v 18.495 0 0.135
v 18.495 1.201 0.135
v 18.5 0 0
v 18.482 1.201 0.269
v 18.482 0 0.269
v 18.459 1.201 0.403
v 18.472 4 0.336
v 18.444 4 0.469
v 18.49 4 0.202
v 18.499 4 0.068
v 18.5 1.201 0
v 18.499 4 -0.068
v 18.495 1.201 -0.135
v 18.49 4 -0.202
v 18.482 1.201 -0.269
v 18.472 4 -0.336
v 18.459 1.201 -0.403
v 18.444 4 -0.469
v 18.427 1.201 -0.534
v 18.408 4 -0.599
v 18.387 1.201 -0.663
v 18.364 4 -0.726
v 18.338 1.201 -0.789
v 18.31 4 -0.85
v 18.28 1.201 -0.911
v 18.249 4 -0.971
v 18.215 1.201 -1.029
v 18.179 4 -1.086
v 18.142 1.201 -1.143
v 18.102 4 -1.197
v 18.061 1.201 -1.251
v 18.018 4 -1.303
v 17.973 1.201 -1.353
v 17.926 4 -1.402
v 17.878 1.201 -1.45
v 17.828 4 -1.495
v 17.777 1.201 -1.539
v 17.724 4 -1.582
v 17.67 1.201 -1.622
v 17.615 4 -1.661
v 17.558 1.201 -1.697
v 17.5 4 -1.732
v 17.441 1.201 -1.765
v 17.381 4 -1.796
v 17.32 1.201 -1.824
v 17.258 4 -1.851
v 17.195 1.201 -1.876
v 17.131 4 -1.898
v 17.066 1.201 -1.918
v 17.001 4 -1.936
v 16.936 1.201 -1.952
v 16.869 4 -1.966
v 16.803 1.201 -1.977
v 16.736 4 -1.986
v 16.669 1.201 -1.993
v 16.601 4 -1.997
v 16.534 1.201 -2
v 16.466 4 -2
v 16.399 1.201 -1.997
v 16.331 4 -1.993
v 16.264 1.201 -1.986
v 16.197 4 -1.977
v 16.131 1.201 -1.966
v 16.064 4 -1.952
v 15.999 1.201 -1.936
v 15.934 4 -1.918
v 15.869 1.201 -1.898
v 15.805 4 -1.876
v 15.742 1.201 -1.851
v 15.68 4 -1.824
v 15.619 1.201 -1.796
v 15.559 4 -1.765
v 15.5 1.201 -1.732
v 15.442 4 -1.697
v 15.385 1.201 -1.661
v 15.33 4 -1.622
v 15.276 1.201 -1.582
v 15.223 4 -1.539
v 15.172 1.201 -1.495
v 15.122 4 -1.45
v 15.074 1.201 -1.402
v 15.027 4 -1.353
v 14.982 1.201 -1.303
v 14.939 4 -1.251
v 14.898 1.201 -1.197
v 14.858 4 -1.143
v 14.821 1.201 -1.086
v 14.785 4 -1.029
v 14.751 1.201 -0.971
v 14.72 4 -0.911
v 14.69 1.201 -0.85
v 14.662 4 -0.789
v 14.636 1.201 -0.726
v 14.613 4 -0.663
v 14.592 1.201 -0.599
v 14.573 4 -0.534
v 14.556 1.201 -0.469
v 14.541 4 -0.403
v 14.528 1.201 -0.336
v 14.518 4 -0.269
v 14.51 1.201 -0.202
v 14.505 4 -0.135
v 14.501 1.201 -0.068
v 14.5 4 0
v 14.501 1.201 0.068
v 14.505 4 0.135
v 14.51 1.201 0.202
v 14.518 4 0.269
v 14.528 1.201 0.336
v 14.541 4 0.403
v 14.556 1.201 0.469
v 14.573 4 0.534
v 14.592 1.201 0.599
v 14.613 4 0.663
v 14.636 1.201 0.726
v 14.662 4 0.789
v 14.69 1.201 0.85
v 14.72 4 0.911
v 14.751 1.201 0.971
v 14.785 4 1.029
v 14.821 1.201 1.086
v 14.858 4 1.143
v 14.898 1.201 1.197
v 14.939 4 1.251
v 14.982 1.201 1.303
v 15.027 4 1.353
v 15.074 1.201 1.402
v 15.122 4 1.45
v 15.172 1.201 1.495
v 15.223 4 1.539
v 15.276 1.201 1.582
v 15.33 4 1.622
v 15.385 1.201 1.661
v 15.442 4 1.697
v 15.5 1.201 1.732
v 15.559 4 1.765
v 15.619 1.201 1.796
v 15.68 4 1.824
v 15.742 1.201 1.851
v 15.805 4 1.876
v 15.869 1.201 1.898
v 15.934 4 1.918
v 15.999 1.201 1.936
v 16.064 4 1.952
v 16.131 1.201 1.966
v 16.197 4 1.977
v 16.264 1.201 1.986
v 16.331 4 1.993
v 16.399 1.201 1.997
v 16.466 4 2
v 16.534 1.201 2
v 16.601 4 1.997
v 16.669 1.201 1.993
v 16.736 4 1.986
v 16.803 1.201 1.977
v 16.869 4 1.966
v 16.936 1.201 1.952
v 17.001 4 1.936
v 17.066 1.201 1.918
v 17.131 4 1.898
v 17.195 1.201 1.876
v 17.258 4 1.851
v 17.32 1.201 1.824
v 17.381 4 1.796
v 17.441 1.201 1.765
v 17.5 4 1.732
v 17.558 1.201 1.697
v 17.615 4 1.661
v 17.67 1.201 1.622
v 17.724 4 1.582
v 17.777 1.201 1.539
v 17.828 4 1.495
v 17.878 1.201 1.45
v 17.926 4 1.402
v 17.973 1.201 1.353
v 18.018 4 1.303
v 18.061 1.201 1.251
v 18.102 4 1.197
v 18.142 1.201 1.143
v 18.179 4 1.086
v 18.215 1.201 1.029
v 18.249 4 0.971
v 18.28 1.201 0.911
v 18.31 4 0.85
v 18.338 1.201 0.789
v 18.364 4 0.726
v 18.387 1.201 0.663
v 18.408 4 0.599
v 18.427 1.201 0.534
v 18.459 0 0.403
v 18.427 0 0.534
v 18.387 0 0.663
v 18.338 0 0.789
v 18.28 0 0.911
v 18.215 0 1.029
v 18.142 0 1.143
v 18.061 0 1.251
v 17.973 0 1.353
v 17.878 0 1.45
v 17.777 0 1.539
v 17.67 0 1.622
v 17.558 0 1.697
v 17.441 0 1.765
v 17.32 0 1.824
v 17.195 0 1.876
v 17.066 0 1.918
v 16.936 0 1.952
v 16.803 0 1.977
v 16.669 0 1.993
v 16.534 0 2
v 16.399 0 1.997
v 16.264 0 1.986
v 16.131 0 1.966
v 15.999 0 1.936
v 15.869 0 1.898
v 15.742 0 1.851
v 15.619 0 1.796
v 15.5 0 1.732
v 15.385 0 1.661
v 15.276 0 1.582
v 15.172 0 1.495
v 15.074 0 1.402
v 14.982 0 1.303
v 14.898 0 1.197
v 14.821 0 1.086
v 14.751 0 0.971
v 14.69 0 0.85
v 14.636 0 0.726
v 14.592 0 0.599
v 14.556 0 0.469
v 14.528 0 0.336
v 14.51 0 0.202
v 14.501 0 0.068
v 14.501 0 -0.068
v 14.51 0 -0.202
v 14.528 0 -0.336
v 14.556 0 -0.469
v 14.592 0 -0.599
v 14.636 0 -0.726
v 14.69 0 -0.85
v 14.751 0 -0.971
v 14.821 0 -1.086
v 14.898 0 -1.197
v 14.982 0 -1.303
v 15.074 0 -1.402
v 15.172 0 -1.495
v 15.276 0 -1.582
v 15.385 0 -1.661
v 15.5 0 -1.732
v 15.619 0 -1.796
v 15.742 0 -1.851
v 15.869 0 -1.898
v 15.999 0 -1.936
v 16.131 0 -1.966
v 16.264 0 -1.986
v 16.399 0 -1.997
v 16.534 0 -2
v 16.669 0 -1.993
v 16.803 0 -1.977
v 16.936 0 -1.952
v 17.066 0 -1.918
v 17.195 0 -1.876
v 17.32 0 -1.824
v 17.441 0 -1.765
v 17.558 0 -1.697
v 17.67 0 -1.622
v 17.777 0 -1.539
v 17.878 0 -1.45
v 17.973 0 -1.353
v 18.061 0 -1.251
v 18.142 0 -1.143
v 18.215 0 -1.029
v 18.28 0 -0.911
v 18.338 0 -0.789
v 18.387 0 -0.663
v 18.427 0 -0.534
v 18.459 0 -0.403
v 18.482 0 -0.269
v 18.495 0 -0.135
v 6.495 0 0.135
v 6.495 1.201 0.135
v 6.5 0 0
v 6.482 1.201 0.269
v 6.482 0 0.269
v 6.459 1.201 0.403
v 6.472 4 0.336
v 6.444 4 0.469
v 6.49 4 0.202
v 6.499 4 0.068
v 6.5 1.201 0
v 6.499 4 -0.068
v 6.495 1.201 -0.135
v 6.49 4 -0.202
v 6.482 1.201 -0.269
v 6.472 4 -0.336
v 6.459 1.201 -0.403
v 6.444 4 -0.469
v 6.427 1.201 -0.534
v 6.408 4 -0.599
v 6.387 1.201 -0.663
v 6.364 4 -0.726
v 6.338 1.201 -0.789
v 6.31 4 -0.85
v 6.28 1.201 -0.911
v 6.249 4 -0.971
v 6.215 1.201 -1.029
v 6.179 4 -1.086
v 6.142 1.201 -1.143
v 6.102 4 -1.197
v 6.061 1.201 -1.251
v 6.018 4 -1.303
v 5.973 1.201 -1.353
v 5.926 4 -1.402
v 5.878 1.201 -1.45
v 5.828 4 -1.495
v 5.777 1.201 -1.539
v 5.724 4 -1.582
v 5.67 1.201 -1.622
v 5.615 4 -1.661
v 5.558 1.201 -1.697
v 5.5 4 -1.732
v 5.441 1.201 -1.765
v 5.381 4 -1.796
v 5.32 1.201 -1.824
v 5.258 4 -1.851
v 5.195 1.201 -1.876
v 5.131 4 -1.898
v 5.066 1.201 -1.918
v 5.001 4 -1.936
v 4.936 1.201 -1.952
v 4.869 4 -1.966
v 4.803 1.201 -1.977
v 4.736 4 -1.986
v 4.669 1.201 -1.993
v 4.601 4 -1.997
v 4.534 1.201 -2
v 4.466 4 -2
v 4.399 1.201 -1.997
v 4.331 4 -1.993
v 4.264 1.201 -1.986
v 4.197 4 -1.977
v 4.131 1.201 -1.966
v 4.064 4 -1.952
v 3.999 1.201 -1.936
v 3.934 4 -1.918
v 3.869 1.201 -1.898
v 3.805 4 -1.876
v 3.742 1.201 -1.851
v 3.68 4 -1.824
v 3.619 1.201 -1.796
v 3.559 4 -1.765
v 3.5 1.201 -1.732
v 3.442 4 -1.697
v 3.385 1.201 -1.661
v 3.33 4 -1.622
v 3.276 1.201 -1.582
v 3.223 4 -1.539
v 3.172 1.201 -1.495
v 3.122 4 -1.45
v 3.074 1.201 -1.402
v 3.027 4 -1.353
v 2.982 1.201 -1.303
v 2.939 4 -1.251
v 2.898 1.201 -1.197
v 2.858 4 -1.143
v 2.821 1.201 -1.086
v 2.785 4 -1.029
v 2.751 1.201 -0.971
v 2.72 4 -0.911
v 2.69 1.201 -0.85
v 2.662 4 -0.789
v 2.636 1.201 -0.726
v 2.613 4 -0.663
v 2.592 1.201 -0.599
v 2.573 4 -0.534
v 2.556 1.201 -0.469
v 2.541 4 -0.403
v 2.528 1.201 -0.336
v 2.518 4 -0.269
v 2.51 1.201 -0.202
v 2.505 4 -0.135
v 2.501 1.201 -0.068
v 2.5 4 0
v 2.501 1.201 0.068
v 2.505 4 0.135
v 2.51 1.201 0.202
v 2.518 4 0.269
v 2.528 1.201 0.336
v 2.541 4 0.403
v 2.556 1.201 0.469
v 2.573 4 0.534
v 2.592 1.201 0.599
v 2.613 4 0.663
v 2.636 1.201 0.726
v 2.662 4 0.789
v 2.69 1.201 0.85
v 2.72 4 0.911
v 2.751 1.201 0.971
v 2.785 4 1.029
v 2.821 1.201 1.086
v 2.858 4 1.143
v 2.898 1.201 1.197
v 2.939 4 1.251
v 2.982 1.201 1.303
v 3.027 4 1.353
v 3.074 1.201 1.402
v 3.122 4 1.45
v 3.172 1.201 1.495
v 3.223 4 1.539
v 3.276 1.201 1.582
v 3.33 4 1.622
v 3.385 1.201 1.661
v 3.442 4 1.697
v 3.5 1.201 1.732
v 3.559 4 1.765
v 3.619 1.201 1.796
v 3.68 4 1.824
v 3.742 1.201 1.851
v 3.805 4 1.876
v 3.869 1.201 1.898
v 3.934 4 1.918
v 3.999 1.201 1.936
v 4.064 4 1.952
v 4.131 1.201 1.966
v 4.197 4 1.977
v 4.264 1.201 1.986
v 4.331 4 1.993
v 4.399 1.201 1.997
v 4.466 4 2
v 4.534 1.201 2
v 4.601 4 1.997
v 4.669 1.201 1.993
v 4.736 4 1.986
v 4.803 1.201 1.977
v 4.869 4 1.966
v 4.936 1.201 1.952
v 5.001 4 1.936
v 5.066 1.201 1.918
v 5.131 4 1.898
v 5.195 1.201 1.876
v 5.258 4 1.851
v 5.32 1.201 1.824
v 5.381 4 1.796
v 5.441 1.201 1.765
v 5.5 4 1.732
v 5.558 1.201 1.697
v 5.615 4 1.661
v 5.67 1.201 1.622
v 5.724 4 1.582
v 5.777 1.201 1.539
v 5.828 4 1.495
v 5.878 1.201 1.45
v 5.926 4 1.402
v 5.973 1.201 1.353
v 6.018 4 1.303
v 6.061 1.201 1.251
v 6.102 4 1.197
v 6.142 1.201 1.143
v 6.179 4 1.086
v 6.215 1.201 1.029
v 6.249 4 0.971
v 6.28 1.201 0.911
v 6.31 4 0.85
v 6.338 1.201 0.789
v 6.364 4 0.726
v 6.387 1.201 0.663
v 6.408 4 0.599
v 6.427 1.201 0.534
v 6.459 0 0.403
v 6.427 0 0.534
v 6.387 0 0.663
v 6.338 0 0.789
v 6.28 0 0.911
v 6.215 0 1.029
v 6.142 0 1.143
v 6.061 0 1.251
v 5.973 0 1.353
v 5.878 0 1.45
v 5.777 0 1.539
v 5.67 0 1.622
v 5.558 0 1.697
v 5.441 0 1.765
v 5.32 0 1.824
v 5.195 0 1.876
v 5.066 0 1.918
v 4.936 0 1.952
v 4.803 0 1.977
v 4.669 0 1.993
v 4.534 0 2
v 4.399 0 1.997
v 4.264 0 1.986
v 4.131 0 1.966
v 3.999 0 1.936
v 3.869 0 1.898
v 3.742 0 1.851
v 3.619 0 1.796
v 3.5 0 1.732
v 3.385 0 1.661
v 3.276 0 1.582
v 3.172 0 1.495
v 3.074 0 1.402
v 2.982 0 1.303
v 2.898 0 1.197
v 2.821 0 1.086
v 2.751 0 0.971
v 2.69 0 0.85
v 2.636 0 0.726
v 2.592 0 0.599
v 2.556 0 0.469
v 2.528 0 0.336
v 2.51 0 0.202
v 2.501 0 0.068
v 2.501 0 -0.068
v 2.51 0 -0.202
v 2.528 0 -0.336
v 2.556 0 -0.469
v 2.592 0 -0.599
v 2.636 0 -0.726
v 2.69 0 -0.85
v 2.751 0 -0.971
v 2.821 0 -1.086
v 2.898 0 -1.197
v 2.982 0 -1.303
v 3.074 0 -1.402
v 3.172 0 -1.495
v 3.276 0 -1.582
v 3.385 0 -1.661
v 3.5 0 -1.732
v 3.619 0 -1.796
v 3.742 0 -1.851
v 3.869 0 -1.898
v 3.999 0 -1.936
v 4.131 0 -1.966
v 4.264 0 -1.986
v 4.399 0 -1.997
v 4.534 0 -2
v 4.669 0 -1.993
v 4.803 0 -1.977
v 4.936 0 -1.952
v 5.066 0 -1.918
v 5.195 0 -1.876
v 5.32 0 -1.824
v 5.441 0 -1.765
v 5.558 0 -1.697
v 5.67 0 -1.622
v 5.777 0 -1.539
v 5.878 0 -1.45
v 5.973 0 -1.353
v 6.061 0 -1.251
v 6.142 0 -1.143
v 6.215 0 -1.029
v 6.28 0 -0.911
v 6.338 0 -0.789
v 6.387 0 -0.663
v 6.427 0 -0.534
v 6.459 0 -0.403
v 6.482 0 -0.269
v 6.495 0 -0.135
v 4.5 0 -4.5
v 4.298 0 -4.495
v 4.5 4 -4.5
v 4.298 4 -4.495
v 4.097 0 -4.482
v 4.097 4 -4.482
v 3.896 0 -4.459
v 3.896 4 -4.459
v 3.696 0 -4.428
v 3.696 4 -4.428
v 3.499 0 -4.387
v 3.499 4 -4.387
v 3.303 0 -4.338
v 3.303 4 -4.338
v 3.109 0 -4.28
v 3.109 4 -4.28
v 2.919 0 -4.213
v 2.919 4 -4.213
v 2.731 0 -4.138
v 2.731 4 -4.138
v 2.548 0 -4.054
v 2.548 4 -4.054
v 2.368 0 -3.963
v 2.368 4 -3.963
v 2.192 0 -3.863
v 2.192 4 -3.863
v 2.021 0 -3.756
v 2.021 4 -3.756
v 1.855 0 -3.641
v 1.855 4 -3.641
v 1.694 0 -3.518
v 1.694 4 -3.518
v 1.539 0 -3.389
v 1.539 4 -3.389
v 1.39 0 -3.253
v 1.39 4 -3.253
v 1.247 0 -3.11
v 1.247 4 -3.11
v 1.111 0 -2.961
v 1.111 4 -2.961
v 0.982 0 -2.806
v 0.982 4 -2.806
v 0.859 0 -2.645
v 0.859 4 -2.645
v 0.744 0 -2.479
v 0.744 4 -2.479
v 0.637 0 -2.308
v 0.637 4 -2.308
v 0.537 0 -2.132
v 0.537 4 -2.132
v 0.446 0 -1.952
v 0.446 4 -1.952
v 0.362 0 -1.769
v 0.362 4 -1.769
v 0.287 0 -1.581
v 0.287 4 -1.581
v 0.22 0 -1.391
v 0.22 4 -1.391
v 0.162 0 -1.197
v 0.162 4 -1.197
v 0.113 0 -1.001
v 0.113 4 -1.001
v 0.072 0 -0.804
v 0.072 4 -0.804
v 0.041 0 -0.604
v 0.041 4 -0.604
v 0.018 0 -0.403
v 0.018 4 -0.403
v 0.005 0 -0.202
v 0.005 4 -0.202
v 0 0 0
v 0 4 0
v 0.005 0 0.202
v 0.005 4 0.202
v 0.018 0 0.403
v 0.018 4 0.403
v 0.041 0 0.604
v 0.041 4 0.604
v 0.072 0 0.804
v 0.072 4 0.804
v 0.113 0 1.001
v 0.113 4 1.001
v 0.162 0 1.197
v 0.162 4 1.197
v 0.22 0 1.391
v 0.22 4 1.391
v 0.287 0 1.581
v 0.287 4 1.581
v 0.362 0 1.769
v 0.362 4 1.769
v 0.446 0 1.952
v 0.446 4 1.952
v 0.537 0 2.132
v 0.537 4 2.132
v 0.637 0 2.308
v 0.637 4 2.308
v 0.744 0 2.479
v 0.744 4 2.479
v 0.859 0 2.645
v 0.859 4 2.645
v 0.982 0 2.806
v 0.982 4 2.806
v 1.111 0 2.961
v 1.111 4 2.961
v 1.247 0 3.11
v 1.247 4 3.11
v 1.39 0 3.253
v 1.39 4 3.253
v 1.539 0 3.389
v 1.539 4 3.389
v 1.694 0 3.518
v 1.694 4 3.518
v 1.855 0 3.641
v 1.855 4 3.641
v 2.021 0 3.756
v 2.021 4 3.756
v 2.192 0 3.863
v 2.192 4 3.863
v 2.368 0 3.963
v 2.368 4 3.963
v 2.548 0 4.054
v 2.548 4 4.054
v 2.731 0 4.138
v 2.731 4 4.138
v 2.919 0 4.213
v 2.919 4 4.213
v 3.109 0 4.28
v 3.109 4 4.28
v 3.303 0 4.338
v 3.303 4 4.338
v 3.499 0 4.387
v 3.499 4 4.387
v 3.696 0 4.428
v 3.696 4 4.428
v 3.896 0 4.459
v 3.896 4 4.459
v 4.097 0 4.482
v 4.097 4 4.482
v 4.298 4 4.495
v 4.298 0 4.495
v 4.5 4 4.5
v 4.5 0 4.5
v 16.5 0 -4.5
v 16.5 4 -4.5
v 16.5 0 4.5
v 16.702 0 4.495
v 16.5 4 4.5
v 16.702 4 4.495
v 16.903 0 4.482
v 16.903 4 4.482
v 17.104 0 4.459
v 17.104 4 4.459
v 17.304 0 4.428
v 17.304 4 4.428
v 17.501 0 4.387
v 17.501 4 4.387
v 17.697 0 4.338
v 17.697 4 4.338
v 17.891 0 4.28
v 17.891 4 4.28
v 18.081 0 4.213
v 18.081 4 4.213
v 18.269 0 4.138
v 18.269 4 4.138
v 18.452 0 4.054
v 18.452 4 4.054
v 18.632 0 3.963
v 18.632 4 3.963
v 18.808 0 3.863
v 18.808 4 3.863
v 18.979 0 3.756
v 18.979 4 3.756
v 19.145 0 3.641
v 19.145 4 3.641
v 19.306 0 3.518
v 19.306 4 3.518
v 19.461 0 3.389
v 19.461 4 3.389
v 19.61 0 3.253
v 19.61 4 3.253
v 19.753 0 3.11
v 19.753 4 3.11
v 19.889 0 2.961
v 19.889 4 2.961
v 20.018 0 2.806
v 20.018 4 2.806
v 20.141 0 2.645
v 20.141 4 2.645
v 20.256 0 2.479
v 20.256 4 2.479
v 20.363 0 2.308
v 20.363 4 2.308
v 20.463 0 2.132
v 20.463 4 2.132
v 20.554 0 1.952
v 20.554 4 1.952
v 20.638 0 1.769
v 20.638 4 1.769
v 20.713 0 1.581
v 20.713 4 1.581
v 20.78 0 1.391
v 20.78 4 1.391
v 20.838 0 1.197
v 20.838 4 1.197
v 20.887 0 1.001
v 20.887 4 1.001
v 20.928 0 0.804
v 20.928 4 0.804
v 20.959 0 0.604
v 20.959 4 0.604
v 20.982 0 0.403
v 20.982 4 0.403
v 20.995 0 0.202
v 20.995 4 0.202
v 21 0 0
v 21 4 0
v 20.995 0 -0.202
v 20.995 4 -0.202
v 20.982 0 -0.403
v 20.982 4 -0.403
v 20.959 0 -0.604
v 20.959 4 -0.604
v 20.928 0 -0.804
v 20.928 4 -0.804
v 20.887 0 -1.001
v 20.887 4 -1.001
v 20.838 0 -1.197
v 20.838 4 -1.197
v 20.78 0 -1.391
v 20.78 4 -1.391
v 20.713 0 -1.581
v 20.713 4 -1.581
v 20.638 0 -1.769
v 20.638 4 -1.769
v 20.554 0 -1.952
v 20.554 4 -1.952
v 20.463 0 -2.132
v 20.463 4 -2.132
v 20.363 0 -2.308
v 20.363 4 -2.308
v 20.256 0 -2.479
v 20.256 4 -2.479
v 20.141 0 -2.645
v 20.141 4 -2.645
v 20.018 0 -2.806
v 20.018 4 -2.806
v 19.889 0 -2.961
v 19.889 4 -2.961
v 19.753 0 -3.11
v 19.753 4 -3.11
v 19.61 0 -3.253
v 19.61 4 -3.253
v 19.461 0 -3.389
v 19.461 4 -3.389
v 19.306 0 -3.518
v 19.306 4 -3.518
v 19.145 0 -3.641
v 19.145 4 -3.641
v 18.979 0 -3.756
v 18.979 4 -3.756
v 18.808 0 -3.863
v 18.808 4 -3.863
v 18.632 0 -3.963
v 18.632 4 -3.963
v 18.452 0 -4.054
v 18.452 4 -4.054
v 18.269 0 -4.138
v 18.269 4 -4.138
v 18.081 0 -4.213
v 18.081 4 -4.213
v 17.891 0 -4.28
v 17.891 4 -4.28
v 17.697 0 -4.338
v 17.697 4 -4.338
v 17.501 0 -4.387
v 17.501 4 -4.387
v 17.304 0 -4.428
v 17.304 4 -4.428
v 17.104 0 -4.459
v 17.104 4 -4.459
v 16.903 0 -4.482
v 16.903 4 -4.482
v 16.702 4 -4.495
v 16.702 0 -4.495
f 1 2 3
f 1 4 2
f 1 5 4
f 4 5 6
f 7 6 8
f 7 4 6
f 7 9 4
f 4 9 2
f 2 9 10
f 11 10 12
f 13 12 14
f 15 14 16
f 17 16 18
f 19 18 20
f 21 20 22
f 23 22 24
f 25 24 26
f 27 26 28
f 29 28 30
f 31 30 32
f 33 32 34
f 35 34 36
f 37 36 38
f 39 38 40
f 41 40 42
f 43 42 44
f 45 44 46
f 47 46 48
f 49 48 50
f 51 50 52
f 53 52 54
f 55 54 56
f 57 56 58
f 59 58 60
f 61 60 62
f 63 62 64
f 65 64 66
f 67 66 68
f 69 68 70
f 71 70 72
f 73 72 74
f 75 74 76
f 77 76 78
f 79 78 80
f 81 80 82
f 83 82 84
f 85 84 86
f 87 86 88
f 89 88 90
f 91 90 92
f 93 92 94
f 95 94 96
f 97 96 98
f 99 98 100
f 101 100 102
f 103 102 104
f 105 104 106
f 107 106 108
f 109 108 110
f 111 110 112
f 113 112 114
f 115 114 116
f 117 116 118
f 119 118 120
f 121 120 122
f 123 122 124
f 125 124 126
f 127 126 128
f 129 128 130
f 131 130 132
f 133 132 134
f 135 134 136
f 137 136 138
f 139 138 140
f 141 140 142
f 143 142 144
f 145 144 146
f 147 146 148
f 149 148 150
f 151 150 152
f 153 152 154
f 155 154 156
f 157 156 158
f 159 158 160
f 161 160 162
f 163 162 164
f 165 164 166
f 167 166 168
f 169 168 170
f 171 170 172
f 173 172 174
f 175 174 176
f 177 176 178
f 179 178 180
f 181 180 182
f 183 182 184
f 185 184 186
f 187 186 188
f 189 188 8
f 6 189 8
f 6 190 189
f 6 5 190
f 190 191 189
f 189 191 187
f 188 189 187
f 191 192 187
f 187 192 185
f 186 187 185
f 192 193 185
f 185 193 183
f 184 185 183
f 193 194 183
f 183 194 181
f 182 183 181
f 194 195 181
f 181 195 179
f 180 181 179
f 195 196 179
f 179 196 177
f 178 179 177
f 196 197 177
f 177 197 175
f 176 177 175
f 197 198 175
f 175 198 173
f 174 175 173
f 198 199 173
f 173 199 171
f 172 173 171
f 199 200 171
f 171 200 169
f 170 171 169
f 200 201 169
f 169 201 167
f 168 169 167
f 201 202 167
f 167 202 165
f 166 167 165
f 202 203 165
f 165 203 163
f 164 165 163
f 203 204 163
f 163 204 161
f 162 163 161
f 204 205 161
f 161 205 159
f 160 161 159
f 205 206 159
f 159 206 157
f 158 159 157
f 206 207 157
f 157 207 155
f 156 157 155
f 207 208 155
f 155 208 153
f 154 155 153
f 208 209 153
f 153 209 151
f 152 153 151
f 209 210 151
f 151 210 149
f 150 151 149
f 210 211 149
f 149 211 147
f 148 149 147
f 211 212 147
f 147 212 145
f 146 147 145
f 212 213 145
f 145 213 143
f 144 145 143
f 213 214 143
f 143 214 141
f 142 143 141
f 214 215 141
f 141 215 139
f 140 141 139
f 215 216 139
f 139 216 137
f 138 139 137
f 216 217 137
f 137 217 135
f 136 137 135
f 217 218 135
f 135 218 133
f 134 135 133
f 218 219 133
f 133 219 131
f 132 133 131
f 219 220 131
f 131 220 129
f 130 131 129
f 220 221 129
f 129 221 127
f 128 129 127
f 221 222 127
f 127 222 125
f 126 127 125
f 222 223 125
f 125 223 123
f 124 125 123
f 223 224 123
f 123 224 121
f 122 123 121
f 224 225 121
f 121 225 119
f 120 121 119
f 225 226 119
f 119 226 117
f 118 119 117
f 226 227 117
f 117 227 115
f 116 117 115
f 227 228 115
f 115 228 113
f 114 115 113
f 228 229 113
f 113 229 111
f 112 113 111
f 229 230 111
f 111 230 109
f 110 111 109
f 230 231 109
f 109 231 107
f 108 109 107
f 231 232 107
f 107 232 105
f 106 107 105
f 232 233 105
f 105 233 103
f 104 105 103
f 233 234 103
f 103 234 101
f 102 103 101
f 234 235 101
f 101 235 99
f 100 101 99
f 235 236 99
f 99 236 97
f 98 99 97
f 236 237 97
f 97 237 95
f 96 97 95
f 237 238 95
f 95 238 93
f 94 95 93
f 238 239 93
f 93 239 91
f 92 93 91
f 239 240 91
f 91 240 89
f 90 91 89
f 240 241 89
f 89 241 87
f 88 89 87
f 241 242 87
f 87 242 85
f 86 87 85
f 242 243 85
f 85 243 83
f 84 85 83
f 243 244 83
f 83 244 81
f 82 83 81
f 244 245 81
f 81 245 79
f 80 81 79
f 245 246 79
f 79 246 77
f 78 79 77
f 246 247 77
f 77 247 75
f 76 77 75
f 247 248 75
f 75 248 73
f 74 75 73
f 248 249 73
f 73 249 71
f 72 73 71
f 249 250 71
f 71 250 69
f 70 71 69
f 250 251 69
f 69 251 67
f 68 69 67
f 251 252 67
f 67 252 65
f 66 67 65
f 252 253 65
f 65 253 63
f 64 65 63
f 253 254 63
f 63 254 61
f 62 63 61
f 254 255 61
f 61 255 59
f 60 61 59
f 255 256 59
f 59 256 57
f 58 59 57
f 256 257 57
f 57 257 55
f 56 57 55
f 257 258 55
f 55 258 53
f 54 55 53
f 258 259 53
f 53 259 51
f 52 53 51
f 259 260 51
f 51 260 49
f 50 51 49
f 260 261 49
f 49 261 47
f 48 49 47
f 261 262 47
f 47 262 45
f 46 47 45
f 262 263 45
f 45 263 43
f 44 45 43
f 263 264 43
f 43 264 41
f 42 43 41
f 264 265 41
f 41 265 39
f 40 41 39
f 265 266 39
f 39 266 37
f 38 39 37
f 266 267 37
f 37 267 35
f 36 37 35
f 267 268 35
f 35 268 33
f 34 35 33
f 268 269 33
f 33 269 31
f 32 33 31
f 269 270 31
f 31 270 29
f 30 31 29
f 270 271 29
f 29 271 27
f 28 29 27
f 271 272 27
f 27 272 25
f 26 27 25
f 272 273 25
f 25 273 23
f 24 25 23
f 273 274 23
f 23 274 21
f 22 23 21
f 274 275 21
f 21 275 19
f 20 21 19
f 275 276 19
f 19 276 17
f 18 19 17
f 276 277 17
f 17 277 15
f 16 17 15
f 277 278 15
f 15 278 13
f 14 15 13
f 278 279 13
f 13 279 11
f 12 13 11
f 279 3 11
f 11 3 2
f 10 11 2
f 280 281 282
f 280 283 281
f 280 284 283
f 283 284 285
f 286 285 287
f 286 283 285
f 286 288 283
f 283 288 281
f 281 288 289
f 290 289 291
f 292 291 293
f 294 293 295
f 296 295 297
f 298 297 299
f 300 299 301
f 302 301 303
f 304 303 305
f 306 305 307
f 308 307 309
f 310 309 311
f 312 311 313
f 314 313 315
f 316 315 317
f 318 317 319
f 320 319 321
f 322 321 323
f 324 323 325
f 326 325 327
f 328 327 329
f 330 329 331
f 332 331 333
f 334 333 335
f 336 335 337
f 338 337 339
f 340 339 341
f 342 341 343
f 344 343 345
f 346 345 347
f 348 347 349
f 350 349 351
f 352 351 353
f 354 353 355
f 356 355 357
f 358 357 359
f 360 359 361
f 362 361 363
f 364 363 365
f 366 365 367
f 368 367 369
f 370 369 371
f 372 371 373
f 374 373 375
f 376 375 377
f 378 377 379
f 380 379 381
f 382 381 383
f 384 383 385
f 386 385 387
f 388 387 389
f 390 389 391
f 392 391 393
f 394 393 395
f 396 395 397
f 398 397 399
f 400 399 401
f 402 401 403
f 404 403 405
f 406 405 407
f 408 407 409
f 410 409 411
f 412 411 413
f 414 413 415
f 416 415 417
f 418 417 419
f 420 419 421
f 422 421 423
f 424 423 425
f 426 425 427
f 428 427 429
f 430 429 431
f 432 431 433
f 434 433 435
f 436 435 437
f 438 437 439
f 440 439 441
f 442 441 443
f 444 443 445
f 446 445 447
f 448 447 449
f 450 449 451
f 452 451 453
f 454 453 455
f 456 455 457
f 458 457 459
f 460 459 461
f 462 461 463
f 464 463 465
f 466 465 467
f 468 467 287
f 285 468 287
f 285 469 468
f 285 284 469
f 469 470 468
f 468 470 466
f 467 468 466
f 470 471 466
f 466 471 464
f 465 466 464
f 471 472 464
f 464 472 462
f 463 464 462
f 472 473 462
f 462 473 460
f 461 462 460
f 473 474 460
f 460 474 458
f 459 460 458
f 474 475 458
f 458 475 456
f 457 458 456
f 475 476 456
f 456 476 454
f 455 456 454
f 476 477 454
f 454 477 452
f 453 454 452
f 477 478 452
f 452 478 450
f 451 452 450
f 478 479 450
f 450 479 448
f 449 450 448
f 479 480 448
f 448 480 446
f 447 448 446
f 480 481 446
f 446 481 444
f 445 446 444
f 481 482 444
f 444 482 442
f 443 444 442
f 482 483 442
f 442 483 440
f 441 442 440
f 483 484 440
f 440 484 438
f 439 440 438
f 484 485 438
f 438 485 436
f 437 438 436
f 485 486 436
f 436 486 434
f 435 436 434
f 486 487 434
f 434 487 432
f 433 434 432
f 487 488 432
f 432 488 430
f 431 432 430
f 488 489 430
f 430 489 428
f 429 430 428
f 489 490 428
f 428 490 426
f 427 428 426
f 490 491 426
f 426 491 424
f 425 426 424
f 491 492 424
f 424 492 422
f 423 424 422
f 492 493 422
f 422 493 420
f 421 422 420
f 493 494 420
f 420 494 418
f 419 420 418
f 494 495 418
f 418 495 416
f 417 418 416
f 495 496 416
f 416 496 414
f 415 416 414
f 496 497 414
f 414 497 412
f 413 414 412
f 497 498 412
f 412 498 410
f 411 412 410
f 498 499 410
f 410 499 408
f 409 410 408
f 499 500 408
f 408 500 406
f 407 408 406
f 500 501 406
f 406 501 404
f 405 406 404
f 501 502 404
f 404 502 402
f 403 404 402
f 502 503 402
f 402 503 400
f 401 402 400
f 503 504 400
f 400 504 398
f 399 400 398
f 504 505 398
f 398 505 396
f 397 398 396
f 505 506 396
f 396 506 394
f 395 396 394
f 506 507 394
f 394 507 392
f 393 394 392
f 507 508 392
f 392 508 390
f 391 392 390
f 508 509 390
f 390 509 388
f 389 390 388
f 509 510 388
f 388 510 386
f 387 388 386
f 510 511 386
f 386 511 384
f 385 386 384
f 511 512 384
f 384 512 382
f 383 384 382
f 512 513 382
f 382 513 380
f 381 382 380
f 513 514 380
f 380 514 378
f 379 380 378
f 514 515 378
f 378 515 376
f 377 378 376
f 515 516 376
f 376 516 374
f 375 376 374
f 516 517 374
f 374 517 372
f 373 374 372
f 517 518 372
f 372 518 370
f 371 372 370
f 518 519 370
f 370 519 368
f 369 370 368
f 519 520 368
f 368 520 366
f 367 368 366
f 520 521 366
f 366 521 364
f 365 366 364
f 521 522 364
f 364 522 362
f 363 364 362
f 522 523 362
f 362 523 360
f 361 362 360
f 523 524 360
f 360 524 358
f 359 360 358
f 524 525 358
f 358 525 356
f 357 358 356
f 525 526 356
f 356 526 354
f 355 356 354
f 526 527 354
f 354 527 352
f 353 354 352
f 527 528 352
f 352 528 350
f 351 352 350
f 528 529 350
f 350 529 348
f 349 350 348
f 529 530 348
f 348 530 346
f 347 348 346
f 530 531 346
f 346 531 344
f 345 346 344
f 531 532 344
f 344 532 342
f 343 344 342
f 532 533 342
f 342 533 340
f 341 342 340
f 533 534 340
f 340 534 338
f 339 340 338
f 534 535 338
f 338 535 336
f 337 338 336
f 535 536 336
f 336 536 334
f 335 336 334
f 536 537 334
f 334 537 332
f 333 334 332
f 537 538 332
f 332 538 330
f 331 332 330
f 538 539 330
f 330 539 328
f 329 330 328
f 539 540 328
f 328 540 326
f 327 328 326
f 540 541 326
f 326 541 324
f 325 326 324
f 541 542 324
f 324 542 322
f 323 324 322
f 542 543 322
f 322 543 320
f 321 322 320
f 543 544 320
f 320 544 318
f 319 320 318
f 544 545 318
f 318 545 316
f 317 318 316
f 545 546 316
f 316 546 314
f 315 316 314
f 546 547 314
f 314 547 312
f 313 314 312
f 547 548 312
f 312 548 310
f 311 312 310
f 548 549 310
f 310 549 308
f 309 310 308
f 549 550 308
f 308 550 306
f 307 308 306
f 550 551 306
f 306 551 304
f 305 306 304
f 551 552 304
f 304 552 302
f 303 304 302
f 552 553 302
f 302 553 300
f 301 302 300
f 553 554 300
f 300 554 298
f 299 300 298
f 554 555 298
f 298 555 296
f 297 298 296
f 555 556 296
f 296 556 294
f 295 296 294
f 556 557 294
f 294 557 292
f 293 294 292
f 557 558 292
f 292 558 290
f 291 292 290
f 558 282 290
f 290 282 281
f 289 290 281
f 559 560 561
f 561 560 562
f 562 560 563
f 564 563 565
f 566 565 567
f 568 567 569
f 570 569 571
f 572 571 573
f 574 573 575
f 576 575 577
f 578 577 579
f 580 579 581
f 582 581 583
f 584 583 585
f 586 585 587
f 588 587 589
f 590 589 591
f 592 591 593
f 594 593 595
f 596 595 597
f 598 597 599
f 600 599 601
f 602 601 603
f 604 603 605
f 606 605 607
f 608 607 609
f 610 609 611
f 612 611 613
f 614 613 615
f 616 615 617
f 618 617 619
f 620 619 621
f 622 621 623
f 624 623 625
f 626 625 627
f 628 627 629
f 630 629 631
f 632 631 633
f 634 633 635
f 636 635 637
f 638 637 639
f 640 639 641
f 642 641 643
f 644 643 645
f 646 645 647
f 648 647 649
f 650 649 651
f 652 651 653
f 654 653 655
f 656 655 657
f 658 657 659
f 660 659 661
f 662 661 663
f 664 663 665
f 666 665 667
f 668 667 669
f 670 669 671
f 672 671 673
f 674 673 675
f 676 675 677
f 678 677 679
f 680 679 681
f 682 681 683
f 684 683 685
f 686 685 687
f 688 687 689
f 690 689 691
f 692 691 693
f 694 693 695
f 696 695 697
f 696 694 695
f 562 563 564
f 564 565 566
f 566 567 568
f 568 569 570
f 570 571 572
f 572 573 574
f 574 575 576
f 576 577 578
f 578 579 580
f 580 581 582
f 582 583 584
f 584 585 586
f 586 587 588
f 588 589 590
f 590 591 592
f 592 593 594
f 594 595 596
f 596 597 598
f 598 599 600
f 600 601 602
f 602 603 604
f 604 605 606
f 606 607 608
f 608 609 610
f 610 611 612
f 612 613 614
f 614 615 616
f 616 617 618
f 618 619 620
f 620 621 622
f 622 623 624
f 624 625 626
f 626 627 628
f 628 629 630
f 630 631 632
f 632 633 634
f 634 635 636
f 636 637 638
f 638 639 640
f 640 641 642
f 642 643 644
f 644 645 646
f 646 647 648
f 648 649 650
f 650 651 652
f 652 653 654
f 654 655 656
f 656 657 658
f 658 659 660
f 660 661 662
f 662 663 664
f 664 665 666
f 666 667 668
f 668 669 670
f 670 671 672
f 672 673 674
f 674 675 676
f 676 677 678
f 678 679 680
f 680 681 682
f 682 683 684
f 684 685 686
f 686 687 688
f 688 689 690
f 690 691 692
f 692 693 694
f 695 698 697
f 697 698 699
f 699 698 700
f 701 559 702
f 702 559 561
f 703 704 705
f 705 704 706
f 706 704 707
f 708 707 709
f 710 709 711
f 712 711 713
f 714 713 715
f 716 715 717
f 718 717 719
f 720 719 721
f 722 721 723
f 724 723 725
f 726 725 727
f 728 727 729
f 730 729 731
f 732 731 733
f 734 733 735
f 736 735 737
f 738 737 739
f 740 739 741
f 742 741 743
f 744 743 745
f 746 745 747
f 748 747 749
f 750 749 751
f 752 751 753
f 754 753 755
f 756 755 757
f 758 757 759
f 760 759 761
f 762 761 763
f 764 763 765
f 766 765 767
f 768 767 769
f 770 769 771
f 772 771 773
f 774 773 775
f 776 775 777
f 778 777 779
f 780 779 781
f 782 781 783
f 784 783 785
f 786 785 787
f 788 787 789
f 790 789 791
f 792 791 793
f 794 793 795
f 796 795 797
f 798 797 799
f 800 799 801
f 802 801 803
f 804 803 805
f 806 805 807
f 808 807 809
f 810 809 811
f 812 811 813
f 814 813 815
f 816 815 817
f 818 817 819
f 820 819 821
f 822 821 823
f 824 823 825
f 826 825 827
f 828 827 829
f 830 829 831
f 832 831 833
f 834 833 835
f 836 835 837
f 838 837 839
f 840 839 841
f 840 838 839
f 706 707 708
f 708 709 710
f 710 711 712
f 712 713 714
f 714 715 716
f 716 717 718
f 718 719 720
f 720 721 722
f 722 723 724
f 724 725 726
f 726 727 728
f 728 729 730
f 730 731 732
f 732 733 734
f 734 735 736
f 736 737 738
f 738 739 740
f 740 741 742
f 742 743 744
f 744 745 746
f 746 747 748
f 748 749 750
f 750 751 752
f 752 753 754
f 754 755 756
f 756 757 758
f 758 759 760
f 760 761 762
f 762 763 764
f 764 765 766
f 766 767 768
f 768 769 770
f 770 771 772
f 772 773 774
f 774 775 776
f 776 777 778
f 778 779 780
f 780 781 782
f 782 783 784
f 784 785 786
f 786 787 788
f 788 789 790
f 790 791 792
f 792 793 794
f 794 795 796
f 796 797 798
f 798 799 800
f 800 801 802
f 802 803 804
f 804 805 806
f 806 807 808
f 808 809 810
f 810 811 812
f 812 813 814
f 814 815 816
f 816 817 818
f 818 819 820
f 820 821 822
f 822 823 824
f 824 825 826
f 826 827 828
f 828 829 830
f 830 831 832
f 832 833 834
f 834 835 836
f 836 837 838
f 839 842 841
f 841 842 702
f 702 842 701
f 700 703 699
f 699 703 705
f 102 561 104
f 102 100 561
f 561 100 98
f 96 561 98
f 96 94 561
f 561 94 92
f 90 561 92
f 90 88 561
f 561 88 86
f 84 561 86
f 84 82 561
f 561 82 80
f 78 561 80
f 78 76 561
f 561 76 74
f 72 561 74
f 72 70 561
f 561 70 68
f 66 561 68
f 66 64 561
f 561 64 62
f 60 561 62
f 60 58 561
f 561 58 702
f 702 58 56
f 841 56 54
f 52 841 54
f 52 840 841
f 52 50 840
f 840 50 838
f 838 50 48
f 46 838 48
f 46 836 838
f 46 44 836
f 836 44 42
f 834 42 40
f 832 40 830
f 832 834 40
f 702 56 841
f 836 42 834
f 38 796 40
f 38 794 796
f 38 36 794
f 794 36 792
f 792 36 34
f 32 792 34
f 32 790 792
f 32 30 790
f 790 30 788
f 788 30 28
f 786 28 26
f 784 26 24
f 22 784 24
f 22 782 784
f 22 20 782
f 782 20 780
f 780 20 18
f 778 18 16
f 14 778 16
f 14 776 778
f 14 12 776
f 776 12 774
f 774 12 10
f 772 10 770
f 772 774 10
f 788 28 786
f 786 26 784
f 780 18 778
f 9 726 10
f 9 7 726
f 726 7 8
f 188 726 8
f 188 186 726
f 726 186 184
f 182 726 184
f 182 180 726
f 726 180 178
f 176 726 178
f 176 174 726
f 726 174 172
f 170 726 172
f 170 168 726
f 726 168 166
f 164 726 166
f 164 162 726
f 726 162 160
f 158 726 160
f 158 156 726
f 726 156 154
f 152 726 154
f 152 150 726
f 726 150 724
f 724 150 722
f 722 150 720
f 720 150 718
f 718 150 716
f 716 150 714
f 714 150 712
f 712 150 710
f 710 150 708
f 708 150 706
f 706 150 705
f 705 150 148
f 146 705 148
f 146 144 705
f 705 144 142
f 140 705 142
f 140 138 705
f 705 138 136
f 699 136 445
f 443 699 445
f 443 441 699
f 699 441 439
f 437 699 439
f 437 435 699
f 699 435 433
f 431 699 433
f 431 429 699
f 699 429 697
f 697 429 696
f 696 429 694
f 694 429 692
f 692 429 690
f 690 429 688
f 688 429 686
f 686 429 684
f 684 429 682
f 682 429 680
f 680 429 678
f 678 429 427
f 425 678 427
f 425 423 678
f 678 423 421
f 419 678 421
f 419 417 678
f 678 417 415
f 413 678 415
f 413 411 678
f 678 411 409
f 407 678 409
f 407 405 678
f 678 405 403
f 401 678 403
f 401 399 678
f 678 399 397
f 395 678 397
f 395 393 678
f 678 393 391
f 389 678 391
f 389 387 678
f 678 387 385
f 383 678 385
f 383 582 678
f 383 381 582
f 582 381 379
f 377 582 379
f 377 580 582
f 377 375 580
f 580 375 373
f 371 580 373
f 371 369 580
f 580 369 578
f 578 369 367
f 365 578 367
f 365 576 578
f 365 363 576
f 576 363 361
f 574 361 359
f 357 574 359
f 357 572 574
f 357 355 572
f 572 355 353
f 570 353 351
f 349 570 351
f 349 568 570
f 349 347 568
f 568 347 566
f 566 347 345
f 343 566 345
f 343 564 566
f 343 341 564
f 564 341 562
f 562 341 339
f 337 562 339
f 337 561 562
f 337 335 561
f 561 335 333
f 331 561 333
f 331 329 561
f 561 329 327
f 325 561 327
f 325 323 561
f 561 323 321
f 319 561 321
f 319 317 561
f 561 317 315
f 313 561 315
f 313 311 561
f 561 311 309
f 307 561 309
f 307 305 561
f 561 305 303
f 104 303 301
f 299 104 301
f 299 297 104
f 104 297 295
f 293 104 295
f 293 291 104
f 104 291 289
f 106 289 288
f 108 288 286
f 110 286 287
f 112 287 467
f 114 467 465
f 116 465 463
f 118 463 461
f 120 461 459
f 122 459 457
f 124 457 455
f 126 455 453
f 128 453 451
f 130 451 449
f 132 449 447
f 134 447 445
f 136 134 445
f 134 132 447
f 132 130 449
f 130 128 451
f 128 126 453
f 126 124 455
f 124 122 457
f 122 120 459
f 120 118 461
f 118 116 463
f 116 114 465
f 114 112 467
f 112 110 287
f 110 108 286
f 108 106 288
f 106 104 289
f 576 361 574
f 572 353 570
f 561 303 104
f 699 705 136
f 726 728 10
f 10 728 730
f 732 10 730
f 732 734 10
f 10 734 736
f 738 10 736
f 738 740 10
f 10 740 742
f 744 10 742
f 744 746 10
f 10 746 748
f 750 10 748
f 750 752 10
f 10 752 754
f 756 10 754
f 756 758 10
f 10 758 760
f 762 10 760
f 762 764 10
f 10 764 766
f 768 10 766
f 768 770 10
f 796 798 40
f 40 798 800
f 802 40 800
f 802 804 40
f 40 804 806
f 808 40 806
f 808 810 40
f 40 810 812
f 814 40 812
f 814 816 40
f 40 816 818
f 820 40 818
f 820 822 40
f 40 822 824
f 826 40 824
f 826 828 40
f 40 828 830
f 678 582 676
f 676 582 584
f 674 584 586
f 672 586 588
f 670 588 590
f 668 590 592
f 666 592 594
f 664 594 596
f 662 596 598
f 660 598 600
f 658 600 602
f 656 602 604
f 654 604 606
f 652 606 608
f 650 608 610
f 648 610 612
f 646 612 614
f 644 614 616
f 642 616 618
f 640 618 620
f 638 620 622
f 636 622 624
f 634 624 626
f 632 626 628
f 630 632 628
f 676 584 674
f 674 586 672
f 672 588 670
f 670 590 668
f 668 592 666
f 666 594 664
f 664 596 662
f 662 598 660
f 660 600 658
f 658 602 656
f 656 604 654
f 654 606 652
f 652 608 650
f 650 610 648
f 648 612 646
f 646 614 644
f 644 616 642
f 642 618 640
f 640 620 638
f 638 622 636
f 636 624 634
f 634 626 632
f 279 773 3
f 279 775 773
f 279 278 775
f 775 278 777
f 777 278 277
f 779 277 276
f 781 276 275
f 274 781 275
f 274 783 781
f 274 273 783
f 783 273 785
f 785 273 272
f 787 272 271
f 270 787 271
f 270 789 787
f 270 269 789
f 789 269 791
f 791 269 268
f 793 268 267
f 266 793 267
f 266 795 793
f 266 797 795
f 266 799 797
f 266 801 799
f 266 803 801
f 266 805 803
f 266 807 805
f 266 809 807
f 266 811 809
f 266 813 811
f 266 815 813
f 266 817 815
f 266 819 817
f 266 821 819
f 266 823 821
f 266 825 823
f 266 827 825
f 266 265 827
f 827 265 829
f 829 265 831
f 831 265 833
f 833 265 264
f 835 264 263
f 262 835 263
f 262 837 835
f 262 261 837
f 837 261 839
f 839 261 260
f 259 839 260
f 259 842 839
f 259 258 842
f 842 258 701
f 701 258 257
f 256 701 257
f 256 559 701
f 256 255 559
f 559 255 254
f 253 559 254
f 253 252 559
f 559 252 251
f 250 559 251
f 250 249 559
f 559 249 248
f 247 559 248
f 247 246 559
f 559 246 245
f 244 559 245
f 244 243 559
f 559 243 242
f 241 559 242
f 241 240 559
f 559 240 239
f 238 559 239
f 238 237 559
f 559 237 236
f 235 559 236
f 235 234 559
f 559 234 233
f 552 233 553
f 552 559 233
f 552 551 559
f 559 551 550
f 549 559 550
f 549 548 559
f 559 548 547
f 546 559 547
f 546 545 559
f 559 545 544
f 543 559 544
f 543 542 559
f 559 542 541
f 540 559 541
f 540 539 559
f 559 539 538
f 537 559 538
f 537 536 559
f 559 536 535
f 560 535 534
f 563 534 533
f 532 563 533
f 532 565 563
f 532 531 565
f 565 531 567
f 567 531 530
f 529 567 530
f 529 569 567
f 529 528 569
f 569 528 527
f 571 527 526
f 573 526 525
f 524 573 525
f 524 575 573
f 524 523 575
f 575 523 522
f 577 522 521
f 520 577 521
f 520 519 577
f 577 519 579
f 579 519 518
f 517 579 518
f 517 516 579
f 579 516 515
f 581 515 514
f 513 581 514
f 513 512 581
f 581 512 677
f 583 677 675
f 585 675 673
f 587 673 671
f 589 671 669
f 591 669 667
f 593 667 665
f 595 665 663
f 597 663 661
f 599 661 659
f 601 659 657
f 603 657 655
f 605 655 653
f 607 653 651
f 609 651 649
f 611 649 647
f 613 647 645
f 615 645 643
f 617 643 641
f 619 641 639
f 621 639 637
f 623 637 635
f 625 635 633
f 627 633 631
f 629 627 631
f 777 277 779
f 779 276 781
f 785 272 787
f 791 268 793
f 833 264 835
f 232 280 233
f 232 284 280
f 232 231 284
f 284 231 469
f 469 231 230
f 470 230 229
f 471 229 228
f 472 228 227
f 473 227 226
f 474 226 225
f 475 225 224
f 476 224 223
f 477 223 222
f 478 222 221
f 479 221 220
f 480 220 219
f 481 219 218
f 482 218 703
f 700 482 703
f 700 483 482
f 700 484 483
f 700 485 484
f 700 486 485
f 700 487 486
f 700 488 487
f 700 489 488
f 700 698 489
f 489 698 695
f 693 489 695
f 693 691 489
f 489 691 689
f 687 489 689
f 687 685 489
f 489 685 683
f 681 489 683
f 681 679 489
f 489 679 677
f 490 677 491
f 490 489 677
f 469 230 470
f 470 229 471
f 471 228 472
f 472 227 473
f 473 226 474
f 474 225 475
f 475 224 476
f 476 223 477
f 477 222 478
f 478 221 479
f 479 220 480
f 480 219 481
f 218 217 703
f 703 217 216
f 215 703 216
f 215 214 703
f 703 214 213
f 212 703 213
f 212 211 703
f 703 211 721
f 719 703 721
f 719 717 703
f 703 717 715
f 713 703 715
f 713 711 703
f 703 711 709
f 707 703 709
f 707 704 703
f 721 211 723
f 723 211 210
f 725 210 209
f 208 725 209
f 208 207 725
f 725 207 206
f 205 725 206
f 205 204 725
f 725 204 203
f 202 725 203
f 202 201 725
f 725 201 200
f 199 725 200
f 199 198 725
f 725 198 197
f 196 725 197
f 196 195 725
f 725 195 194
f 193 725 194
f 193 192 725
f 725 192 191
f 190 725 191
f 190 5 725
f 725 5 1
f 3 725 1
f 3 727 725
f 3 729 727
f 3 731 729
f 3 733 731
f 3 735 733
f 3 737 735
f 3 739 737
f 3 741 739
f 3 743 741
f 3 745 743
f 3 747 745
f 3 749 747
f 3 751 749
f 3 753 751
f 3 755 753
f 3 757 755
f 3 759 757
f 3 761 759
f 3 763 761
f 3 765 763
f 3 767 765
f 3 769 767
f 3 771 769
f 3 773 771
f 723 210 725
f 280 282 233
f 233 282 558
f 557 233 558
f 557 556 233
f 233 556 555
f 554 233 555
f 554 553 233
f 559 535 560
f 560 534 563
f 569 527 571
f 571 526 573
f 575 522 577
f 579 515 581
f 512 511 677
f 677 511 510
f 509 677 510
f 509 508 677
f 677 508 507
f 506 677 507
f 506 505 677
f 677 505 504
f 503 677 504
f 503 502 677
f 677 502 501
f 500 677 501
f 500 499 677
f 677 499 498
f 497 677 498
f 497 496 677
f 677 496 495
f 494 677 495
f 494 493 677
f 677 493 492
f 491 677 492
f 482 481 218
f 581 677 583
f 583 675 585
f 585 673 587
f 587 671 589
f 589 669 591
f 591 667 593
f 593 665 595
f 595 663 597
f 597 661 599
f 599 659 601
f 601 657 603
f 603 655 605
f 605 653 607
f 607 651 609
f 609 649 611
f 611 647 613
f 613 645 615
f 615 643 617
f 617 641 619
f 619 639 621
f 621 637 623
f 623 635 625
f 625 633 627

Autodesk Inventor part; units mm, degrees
ref_plane "YZ Plane" through (0, 0, 0) normal (1, 0, 0) x (0, 1, 0)
ref_plane "XZ Plane" through (0, 0, 0) normal (0, 1, 0) x (-1, 0, 0)
ref_plane "XY Plane" through (0, 0, 0) normal (0, 0, 1) x (1, 0, 0)
sketch "Sketch1" plane through (0, 0, 0) normal (0, 1, 0) x (-1, 0, 0)
  line L0 (0, 0) -> (-21, 0) construction
  line L1 (-4.5, 4.5) -> (-16.5, 4.5)
  line L2 (-16.5, -4.5) -> (-4.5, -4.5)
  arc A0 (-4.5, -4.5) -> (-4.5, 4.5) centre (-4.5, 0) ccw
  arc A1 (-16.5, 4.5) -> (-16.5, -4.5) centre (-16.5, 0) ccw
  point P0 (-10.5, 0)
  dimension "d0" = 9
  dimension "d1" = 21
extrude "Extrusion1" add sketch "Sketch1" along normal blind 4
hole "Hole1" at (4.5, 4, 0) direction (0, -1, 0) diameter 4 end through all
hole "Hole2" at (16.5, 4, 0) direction (0, -1, 0) diameter 4 end through all
properties part number "A8-0015"
